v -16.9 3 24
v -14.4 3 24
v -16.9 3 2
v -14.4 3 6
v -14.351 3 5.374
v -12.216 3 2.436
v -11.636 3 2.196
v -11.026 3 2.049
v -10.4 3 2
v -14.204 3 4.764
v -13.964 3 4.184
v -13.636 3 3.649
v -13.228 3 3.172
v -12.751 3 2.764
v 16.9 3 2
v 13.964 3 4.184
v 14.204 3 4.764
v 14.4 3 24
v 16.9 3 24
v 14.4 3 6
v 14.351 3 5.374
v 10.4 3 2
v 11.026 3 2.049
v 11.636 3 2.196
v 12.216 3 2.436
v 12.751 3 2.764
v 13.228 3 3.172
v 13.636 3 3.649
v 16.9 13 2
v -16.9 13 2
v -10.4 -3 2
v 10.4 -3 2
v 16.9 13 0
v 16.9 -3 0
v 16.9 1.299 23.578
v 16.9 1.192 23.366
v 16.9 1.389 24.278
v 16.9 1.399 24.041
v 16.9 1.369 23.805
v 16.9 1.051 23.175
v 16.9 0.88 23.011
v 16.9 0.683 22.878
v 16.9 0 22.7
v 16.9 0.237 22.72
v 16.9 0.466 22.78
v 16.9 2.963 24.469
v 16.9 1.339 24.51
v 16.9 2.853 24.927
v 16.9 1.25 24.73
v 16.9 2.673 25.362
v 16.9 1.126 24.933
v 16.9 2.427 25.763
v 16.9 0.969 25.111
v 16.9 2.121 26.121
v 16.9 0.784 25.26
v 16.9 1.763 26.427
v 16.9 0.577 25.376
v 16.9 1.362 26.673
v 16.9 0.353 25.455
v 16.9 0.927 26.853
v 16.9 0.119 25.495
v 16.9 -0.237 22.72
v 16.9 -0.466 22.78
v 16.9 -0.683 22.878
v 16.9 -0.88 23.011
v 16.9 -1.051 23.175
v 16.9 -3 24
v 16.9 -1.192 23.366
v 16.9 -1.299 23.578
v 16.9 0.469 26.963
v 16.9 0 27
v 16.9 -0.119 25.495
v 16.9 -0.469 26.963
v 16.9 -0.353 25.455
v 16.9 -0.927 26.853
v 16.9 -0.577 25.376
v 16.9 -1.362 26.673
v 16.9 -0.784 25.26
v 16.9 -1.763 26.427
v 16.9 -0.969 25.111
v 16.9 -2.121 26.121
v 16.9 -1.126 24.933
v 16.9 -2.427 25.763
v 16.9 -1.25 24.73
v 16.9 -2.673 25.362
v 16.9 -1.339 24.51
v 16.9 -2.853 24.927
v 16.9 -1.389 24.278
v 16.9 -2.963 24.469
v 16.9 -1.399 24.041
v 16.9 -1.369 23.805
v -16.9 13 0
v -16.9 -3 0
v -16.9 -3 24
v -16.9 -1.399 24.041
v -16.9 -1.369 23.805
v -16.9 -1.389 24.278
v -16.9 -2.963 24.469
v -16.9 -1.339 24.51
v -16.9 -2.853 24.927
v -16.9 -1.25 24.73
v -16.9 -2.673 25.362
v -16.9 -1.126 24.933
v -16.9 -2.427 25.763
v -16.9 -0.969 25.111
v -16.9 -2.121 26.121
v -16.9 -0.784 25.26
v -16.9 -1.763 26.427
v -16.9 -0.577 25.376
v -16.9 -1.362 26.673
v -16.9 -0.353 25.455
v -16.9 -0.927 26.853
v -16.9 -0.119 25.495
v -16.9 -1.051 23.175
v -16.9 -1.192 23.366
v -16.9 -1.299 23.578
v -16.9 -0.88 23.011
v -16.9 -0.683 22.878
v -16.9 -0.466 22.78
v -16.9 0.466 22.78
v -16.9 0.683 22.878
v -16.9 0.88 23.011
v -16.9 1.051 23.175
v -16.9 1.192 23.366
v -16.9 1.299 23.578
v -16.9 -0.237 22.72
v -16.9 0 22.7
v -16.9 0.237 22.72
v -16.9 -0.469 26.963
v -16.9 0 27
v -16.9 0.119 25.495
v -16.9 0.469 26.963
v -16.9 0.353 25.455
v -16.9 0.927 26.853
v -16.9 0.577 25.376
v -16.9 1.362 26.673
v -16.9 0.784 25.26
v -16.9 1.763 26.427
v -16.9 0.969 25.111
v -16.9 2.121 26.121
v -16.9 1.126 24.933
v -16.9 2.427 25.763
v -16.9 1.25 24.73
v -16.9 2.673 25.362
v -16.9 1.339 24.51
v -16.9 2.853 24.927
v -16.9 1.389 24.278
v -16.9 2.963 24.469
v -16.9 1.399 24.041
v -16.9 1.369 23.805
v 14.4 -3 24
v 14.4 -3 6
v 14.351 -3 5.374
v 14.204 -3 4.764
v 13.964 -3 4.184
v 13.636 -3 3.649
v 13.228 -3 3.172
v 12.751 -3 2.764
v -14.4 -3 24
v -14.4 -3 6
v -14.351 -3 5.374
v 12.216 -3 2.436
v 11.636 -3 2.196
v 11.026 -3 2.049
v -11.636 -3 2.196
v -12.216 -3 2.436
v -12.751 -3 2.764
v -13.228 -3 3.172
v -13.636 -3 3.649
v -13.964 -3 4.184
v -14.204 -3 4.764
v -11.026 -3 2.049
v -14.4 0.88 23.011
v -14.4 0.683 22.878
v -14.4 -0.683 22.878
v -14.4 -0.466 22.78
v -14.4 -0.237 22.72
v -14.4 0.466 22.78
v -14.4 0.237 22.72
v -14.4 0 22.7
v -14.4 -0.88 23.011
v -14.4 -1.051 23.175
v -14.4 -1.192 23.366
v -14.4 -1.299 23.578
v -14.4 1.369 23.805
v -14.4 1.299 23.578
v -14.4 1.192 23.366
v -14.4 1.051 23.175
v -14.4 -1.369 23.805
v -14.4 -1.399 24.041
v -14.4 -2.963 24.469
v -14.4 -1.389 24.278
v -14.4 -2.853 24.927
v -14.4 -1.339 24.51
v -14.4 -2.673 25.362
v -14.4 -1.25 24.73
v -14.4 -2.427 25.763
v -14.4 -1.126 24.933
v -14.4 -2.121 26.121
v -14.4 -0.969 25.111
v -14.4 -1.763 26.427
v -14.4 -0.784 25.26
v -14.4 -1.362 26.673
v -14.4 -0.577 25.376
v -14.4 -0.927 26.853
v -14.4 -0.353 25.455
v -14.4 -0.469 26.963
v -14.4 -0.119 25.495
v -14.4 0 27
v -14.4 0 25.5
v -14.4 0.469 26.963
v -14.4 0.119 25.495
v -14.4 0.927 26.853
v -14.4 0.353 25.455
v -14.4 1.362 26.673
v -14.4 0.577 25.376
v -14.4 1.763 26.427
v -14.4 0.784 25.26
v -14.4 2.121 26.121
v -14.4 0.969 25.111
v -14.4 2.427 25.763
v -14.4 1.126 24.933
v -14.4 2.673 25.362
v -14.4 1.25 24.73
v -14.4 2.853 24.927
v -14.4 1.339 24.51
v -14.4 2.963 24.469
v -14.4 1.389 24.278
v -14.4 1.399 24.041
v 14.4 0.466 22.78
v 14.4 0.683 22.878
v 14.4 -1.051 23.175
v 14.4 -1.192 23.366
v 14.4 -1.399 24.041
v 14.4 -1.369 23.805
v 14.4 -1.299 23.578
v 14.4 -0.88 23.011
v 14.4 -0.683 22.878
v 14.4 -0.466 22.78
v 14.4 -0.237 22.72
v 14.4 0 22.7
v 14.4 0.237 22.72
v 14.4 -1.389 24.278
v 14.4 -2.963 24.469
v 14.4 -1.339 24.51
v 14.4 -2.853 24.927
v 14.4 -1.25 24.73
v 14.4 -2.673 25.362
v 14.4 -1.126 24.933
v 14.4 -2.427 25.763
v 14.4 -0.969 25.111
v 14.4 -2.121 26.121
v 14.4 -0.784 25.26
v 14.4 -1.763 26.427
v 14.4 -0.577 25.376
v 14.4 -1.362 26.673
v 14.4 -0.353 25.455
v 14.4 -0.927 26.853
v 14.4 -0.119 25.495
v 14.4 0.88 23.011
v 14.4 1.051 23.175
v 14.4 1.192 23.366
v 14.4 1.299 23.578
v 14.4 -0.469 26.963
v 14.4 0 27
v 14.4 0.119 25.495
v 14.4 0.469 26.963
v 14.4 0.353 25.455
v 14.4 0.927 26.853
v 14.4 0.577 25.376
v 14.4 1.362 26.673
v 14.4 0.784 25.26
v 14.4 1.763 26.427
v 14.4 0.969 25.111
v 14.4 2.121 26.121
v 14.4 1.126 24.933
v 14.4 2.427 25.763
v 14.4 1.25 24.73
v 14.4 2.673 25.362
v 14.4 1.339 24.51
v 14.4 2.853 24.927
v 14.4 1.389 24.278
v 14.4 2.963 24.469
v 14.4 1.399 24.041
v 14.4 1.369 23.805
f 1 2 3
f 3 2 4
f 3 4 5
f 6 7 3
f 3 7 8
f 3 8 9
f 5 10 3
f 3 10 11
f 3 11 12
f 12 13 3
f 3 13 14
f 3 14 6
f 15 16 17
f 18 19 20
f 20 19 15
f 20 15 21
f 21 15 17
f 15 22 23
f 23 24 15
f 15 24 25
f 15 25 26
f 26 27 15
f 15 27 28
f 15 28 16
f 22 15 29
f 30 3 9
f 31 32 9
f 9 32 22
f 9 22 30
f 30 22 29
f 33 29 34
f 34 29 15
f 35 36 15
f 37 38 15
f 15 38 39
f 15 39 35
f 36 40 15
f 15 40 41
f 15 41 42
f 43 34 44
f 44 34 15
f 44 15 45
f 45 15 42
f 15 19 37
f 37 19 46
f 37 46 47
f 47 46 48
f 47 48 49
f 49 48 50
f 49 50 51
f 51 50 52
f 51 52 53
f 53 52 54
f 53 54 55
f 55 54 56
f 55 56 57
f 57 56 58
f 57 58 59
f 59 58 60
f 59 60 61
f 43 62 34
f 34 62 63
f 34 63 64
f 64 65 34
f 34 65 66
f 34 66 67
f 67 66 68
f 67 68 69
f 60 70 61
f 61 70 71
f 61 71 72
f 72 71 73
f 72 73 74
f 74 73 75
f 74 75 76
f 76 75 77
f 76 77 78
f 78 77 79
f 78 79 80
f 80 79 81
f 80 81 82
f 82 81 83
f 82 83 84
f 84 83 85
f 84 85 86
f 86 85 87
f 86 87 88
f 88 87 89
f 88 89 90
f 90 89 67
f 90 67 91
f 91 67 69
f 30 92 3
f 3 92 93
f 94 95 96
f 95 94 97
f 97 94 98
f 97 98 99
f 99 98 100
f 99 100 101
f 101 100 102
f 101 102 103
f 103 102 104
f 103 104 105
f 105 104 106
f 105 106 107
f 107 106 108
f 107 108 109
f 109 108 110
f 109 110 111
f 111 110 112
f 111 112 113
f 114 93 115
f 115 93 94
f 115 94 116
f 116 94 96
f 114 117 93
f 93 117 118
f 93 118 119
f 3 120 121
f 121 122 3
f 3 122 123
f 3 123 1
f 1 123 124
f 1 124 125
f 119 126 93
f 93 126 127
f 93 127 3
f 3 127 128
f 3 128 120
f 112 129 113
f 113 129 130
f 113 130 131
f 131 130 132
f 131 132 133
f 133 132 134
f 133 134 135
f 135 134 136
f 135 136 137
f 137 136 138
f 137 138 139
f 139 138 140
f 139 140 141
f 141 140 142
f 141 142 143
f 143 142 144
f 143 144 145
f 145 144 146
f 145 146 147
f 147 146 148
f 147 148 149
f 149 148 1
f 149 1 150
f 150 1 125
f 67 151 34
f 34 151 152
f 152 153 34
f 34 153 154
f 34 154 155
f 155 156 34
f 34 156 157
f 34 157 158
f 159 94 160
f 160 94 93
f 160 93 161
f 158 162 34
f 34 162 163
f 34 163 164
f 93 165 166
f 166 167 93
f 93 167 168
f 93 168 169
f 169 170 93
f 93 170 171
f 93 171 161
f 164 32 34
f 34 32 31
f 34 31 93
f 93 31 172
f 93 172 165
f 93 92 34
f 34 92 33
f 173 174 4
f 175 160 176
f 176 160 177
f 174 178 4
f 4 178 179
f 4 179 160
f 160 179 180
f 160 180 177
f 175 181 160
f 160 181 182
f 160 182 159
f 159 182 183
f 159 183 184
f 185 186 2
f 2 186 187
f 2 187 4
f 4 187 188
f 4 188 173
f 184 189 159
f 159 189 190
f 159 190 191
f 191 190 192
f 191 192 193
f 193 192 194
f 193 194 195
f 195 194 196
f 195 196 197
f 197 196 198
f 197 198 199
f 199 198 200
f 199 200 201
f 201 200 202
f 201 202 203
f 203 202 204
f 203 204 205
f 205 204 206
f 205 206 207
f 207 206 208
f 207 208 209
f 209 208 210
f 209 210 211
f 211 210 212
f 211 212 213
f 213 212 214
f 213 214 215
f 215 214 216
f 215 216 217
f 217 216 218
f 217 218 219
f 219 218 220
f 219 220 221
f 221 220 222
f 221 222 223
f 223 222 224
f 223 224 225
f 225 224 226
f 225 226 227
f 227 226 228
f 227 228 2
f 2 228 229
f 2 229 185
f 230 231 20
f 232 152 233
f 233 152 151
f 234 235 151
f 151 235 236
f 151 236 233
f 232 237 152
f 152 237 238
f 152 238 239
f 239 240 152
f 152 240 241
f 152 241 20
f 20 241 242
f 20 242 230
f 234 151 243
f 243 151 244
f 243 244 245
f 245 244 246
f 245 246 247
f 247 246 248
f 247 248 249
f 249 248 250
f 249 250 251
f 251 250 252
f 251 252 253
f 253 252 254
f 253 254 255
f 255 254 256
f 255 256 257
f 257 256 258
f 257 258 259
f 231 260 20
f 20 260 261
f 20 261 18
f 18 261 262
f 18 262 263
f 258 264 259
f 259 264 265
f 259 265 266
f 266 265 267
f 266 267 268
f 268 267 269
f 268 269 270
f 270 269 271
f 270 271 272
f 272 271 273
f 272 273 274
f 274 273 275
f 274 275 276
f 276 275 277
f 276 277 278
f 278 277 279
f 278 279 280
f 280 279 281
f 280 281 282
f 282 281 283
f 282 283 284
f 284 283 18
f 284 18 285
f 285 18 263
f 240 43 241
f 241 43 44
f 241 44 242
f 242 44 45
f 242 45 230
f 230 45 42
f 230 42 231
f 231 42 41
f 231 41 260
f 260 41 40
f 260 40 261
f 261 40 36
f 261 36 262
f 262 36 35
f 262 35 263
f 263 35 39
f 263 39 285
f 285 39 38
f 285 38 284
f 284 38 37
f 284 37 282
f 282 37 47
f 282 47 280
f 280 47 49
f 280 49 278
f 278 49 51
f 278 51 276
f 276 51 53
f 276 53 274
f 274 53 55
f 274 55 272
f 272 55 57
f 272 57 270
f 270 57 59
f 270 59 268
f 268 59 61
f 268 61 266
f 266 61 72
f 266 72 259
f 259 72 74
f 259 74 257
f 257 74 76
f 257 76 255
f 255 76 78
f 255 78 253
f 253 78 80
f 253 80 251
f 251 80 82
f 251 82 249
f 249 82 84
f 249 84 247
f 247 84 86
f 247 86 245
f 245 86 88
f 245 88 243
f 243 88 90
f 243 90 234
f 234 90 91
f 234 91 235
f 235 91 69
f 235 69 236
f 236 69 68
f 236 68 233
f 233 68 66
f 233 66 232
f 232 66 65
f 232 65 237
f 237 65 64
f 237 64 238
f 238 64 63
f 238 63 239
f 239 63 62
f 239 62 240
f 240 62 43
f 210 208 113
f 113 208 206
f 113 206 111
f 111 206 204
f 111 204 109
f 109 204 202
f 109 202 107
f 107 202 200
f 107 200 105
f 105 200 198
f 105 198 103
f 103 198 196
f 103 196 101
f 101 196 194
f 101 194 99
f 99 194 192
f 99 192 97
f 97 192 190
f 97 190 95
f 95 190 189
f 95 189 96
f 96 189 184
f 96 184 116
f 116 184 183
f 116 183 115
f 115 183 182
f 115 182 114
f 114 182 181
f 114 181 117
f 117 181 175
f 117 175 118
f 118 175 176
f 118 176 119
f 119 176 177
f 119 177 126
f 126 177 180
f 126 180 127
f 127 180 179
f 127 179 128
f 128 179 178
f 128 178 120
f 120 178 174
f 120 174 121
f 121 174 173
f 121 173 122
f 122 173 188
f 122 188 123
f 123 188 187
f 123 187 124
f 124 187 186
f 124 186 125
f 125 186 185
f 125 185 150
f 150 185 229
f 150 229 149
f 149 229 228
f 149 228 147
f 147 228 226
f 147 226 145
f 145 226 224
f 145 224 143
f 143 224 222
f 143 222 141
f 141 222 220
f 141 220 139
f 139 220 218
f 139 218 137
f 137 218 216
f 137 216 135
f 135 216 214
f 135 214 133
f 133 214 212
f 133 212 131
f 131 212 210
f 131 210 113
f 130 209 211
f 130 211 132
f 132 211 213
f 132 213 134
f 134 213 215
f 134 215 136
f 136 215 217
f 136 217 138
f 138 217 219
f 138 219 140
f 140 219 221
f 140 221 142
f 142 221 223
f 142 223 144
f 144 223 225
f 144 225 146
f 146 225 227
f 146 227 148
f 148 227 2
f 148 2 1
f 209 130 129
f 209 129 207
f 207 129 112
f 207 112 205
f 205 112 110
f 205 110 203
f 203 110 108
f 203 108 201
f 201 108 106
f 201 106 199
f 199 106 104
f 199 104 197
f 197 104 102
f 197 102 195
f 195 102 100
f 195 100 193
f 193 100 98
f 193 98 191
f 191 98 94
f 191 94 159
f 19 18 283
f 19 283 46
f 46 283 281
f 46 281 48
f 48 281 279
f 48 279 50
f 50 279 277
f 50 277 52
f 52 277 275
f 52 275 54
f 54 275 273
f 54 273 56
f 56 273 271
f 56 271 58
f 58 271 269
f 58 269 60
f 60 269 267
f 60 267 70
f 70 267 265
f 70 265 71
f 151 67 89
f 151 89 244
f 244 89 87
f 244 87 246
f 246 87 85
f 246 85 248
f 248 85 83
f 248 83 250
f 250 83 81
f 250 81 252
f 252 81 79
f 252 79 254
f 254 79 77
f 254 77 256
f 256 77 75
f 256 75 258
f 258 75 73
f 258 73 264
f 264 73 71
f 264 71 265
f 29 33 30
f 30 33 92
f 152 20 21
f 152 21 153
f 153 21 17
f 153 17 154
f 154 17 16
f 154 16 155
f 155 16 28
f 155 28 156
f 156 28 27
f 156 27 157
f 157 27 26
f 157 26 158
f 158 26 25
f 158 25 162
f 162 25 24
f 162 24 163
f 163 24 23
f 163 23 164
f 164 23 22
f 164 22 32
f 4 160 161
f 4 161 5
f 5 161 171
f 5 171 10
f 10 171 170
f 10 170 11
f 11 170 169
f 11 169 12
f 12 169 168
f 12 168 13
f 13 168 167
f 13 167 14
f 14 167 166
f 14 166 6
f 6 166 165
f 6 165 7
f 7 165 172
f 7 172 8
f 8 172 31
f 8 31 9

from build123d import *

# Parameters (mm, degrees)
SKETCH1_W           = 33.8
SKETCH1_H           = 6
BOSS_EXTRUDE1_DEPTH = 2
SKETCH2_W           = 2.5
SKETCH2_H           = 6
BOSS_EXTRUDE2_DEPTH = 25
SKETCH3_R           = 1.4
CUT_EXTRUDE1_DEPTH  = 44.364040402
FILLET1_R           = 3
SKETCH4_W           = 33.8
SKETCH4_H           = 2
BOSS_EXTRUDE3_DEPTH = 10
FILLET2_R           = 4


with BuildPart() as part:
    # Sketch1 → Boss-Extrude1 (new body)
    with BuildSketch(Plane.XY):
        Rectangle(SKETCH1_W, SKETCH1_H)
    extrude(amount=BOSS_EXTRUDE1_DEPTH)

    # Sketch2 → Boss-Extrude2 (add)
    with BuildSketch(Plane.XY.offset(2)):
        with Locations((-15.65, 0)):
            Rectangle(SKETCH2_W, SKETCH2_H)
        with Locations((15.65, 0)):
            Rectangle(SKETCH2_W, SKETCH2_H)
    extrude(amount=BOSS_EXTRUDE2_DEPTH)

    # Sketch3 → Cut-Extrude1 (cut, through all)
    with BuildSketch(Plane(origin=(16.9, 0, 0), x_dir=(0, 0, -1), z_dir=(1, 0, 0))):
        with Locations((-24.1, 0)):
            Circle(SKETCH3_R)
    extrude(amount=-CUT_EXTRUDE1_DEPTH, mode=Mode.SUBTRACT)

    # Fillet1
    fillet1_edges = [part.edges().sort_by_distance(p)[0] for p in [
        (-15.65, -3, 27),
        (15.65, -3, 27),
        (-15.65, 3, 27),
        (15.65, 3, 27),
    ]]
    fillet(fillet1_edges, radius=FILLET1_R - 0.0001)  # a hair under: the kernel refuses the full size

    # Sketch4 → Boss-Extrude3 (add)
    with BuildSketch(Plane(origin=(0, 3, 0), x_dir=(1, 0, 0), z_dir=(0, 1, 0))):
        with Locations((0, -1)):
            Rectangle(SKETCH4_W, SKETCH4_H)
    extrude(amount=BOSS_EXTRUDE3_DEPTH)

    # Fillet2
    fillet2_edges = [part.edges().sort_by_distance(p)[0] for p in [
        (14.4, 0, 2),
        (-14.4, 0, 2),
    ]]
    fillet(fillet2_edges, radius=FILLET2_R)


solid = part.part
